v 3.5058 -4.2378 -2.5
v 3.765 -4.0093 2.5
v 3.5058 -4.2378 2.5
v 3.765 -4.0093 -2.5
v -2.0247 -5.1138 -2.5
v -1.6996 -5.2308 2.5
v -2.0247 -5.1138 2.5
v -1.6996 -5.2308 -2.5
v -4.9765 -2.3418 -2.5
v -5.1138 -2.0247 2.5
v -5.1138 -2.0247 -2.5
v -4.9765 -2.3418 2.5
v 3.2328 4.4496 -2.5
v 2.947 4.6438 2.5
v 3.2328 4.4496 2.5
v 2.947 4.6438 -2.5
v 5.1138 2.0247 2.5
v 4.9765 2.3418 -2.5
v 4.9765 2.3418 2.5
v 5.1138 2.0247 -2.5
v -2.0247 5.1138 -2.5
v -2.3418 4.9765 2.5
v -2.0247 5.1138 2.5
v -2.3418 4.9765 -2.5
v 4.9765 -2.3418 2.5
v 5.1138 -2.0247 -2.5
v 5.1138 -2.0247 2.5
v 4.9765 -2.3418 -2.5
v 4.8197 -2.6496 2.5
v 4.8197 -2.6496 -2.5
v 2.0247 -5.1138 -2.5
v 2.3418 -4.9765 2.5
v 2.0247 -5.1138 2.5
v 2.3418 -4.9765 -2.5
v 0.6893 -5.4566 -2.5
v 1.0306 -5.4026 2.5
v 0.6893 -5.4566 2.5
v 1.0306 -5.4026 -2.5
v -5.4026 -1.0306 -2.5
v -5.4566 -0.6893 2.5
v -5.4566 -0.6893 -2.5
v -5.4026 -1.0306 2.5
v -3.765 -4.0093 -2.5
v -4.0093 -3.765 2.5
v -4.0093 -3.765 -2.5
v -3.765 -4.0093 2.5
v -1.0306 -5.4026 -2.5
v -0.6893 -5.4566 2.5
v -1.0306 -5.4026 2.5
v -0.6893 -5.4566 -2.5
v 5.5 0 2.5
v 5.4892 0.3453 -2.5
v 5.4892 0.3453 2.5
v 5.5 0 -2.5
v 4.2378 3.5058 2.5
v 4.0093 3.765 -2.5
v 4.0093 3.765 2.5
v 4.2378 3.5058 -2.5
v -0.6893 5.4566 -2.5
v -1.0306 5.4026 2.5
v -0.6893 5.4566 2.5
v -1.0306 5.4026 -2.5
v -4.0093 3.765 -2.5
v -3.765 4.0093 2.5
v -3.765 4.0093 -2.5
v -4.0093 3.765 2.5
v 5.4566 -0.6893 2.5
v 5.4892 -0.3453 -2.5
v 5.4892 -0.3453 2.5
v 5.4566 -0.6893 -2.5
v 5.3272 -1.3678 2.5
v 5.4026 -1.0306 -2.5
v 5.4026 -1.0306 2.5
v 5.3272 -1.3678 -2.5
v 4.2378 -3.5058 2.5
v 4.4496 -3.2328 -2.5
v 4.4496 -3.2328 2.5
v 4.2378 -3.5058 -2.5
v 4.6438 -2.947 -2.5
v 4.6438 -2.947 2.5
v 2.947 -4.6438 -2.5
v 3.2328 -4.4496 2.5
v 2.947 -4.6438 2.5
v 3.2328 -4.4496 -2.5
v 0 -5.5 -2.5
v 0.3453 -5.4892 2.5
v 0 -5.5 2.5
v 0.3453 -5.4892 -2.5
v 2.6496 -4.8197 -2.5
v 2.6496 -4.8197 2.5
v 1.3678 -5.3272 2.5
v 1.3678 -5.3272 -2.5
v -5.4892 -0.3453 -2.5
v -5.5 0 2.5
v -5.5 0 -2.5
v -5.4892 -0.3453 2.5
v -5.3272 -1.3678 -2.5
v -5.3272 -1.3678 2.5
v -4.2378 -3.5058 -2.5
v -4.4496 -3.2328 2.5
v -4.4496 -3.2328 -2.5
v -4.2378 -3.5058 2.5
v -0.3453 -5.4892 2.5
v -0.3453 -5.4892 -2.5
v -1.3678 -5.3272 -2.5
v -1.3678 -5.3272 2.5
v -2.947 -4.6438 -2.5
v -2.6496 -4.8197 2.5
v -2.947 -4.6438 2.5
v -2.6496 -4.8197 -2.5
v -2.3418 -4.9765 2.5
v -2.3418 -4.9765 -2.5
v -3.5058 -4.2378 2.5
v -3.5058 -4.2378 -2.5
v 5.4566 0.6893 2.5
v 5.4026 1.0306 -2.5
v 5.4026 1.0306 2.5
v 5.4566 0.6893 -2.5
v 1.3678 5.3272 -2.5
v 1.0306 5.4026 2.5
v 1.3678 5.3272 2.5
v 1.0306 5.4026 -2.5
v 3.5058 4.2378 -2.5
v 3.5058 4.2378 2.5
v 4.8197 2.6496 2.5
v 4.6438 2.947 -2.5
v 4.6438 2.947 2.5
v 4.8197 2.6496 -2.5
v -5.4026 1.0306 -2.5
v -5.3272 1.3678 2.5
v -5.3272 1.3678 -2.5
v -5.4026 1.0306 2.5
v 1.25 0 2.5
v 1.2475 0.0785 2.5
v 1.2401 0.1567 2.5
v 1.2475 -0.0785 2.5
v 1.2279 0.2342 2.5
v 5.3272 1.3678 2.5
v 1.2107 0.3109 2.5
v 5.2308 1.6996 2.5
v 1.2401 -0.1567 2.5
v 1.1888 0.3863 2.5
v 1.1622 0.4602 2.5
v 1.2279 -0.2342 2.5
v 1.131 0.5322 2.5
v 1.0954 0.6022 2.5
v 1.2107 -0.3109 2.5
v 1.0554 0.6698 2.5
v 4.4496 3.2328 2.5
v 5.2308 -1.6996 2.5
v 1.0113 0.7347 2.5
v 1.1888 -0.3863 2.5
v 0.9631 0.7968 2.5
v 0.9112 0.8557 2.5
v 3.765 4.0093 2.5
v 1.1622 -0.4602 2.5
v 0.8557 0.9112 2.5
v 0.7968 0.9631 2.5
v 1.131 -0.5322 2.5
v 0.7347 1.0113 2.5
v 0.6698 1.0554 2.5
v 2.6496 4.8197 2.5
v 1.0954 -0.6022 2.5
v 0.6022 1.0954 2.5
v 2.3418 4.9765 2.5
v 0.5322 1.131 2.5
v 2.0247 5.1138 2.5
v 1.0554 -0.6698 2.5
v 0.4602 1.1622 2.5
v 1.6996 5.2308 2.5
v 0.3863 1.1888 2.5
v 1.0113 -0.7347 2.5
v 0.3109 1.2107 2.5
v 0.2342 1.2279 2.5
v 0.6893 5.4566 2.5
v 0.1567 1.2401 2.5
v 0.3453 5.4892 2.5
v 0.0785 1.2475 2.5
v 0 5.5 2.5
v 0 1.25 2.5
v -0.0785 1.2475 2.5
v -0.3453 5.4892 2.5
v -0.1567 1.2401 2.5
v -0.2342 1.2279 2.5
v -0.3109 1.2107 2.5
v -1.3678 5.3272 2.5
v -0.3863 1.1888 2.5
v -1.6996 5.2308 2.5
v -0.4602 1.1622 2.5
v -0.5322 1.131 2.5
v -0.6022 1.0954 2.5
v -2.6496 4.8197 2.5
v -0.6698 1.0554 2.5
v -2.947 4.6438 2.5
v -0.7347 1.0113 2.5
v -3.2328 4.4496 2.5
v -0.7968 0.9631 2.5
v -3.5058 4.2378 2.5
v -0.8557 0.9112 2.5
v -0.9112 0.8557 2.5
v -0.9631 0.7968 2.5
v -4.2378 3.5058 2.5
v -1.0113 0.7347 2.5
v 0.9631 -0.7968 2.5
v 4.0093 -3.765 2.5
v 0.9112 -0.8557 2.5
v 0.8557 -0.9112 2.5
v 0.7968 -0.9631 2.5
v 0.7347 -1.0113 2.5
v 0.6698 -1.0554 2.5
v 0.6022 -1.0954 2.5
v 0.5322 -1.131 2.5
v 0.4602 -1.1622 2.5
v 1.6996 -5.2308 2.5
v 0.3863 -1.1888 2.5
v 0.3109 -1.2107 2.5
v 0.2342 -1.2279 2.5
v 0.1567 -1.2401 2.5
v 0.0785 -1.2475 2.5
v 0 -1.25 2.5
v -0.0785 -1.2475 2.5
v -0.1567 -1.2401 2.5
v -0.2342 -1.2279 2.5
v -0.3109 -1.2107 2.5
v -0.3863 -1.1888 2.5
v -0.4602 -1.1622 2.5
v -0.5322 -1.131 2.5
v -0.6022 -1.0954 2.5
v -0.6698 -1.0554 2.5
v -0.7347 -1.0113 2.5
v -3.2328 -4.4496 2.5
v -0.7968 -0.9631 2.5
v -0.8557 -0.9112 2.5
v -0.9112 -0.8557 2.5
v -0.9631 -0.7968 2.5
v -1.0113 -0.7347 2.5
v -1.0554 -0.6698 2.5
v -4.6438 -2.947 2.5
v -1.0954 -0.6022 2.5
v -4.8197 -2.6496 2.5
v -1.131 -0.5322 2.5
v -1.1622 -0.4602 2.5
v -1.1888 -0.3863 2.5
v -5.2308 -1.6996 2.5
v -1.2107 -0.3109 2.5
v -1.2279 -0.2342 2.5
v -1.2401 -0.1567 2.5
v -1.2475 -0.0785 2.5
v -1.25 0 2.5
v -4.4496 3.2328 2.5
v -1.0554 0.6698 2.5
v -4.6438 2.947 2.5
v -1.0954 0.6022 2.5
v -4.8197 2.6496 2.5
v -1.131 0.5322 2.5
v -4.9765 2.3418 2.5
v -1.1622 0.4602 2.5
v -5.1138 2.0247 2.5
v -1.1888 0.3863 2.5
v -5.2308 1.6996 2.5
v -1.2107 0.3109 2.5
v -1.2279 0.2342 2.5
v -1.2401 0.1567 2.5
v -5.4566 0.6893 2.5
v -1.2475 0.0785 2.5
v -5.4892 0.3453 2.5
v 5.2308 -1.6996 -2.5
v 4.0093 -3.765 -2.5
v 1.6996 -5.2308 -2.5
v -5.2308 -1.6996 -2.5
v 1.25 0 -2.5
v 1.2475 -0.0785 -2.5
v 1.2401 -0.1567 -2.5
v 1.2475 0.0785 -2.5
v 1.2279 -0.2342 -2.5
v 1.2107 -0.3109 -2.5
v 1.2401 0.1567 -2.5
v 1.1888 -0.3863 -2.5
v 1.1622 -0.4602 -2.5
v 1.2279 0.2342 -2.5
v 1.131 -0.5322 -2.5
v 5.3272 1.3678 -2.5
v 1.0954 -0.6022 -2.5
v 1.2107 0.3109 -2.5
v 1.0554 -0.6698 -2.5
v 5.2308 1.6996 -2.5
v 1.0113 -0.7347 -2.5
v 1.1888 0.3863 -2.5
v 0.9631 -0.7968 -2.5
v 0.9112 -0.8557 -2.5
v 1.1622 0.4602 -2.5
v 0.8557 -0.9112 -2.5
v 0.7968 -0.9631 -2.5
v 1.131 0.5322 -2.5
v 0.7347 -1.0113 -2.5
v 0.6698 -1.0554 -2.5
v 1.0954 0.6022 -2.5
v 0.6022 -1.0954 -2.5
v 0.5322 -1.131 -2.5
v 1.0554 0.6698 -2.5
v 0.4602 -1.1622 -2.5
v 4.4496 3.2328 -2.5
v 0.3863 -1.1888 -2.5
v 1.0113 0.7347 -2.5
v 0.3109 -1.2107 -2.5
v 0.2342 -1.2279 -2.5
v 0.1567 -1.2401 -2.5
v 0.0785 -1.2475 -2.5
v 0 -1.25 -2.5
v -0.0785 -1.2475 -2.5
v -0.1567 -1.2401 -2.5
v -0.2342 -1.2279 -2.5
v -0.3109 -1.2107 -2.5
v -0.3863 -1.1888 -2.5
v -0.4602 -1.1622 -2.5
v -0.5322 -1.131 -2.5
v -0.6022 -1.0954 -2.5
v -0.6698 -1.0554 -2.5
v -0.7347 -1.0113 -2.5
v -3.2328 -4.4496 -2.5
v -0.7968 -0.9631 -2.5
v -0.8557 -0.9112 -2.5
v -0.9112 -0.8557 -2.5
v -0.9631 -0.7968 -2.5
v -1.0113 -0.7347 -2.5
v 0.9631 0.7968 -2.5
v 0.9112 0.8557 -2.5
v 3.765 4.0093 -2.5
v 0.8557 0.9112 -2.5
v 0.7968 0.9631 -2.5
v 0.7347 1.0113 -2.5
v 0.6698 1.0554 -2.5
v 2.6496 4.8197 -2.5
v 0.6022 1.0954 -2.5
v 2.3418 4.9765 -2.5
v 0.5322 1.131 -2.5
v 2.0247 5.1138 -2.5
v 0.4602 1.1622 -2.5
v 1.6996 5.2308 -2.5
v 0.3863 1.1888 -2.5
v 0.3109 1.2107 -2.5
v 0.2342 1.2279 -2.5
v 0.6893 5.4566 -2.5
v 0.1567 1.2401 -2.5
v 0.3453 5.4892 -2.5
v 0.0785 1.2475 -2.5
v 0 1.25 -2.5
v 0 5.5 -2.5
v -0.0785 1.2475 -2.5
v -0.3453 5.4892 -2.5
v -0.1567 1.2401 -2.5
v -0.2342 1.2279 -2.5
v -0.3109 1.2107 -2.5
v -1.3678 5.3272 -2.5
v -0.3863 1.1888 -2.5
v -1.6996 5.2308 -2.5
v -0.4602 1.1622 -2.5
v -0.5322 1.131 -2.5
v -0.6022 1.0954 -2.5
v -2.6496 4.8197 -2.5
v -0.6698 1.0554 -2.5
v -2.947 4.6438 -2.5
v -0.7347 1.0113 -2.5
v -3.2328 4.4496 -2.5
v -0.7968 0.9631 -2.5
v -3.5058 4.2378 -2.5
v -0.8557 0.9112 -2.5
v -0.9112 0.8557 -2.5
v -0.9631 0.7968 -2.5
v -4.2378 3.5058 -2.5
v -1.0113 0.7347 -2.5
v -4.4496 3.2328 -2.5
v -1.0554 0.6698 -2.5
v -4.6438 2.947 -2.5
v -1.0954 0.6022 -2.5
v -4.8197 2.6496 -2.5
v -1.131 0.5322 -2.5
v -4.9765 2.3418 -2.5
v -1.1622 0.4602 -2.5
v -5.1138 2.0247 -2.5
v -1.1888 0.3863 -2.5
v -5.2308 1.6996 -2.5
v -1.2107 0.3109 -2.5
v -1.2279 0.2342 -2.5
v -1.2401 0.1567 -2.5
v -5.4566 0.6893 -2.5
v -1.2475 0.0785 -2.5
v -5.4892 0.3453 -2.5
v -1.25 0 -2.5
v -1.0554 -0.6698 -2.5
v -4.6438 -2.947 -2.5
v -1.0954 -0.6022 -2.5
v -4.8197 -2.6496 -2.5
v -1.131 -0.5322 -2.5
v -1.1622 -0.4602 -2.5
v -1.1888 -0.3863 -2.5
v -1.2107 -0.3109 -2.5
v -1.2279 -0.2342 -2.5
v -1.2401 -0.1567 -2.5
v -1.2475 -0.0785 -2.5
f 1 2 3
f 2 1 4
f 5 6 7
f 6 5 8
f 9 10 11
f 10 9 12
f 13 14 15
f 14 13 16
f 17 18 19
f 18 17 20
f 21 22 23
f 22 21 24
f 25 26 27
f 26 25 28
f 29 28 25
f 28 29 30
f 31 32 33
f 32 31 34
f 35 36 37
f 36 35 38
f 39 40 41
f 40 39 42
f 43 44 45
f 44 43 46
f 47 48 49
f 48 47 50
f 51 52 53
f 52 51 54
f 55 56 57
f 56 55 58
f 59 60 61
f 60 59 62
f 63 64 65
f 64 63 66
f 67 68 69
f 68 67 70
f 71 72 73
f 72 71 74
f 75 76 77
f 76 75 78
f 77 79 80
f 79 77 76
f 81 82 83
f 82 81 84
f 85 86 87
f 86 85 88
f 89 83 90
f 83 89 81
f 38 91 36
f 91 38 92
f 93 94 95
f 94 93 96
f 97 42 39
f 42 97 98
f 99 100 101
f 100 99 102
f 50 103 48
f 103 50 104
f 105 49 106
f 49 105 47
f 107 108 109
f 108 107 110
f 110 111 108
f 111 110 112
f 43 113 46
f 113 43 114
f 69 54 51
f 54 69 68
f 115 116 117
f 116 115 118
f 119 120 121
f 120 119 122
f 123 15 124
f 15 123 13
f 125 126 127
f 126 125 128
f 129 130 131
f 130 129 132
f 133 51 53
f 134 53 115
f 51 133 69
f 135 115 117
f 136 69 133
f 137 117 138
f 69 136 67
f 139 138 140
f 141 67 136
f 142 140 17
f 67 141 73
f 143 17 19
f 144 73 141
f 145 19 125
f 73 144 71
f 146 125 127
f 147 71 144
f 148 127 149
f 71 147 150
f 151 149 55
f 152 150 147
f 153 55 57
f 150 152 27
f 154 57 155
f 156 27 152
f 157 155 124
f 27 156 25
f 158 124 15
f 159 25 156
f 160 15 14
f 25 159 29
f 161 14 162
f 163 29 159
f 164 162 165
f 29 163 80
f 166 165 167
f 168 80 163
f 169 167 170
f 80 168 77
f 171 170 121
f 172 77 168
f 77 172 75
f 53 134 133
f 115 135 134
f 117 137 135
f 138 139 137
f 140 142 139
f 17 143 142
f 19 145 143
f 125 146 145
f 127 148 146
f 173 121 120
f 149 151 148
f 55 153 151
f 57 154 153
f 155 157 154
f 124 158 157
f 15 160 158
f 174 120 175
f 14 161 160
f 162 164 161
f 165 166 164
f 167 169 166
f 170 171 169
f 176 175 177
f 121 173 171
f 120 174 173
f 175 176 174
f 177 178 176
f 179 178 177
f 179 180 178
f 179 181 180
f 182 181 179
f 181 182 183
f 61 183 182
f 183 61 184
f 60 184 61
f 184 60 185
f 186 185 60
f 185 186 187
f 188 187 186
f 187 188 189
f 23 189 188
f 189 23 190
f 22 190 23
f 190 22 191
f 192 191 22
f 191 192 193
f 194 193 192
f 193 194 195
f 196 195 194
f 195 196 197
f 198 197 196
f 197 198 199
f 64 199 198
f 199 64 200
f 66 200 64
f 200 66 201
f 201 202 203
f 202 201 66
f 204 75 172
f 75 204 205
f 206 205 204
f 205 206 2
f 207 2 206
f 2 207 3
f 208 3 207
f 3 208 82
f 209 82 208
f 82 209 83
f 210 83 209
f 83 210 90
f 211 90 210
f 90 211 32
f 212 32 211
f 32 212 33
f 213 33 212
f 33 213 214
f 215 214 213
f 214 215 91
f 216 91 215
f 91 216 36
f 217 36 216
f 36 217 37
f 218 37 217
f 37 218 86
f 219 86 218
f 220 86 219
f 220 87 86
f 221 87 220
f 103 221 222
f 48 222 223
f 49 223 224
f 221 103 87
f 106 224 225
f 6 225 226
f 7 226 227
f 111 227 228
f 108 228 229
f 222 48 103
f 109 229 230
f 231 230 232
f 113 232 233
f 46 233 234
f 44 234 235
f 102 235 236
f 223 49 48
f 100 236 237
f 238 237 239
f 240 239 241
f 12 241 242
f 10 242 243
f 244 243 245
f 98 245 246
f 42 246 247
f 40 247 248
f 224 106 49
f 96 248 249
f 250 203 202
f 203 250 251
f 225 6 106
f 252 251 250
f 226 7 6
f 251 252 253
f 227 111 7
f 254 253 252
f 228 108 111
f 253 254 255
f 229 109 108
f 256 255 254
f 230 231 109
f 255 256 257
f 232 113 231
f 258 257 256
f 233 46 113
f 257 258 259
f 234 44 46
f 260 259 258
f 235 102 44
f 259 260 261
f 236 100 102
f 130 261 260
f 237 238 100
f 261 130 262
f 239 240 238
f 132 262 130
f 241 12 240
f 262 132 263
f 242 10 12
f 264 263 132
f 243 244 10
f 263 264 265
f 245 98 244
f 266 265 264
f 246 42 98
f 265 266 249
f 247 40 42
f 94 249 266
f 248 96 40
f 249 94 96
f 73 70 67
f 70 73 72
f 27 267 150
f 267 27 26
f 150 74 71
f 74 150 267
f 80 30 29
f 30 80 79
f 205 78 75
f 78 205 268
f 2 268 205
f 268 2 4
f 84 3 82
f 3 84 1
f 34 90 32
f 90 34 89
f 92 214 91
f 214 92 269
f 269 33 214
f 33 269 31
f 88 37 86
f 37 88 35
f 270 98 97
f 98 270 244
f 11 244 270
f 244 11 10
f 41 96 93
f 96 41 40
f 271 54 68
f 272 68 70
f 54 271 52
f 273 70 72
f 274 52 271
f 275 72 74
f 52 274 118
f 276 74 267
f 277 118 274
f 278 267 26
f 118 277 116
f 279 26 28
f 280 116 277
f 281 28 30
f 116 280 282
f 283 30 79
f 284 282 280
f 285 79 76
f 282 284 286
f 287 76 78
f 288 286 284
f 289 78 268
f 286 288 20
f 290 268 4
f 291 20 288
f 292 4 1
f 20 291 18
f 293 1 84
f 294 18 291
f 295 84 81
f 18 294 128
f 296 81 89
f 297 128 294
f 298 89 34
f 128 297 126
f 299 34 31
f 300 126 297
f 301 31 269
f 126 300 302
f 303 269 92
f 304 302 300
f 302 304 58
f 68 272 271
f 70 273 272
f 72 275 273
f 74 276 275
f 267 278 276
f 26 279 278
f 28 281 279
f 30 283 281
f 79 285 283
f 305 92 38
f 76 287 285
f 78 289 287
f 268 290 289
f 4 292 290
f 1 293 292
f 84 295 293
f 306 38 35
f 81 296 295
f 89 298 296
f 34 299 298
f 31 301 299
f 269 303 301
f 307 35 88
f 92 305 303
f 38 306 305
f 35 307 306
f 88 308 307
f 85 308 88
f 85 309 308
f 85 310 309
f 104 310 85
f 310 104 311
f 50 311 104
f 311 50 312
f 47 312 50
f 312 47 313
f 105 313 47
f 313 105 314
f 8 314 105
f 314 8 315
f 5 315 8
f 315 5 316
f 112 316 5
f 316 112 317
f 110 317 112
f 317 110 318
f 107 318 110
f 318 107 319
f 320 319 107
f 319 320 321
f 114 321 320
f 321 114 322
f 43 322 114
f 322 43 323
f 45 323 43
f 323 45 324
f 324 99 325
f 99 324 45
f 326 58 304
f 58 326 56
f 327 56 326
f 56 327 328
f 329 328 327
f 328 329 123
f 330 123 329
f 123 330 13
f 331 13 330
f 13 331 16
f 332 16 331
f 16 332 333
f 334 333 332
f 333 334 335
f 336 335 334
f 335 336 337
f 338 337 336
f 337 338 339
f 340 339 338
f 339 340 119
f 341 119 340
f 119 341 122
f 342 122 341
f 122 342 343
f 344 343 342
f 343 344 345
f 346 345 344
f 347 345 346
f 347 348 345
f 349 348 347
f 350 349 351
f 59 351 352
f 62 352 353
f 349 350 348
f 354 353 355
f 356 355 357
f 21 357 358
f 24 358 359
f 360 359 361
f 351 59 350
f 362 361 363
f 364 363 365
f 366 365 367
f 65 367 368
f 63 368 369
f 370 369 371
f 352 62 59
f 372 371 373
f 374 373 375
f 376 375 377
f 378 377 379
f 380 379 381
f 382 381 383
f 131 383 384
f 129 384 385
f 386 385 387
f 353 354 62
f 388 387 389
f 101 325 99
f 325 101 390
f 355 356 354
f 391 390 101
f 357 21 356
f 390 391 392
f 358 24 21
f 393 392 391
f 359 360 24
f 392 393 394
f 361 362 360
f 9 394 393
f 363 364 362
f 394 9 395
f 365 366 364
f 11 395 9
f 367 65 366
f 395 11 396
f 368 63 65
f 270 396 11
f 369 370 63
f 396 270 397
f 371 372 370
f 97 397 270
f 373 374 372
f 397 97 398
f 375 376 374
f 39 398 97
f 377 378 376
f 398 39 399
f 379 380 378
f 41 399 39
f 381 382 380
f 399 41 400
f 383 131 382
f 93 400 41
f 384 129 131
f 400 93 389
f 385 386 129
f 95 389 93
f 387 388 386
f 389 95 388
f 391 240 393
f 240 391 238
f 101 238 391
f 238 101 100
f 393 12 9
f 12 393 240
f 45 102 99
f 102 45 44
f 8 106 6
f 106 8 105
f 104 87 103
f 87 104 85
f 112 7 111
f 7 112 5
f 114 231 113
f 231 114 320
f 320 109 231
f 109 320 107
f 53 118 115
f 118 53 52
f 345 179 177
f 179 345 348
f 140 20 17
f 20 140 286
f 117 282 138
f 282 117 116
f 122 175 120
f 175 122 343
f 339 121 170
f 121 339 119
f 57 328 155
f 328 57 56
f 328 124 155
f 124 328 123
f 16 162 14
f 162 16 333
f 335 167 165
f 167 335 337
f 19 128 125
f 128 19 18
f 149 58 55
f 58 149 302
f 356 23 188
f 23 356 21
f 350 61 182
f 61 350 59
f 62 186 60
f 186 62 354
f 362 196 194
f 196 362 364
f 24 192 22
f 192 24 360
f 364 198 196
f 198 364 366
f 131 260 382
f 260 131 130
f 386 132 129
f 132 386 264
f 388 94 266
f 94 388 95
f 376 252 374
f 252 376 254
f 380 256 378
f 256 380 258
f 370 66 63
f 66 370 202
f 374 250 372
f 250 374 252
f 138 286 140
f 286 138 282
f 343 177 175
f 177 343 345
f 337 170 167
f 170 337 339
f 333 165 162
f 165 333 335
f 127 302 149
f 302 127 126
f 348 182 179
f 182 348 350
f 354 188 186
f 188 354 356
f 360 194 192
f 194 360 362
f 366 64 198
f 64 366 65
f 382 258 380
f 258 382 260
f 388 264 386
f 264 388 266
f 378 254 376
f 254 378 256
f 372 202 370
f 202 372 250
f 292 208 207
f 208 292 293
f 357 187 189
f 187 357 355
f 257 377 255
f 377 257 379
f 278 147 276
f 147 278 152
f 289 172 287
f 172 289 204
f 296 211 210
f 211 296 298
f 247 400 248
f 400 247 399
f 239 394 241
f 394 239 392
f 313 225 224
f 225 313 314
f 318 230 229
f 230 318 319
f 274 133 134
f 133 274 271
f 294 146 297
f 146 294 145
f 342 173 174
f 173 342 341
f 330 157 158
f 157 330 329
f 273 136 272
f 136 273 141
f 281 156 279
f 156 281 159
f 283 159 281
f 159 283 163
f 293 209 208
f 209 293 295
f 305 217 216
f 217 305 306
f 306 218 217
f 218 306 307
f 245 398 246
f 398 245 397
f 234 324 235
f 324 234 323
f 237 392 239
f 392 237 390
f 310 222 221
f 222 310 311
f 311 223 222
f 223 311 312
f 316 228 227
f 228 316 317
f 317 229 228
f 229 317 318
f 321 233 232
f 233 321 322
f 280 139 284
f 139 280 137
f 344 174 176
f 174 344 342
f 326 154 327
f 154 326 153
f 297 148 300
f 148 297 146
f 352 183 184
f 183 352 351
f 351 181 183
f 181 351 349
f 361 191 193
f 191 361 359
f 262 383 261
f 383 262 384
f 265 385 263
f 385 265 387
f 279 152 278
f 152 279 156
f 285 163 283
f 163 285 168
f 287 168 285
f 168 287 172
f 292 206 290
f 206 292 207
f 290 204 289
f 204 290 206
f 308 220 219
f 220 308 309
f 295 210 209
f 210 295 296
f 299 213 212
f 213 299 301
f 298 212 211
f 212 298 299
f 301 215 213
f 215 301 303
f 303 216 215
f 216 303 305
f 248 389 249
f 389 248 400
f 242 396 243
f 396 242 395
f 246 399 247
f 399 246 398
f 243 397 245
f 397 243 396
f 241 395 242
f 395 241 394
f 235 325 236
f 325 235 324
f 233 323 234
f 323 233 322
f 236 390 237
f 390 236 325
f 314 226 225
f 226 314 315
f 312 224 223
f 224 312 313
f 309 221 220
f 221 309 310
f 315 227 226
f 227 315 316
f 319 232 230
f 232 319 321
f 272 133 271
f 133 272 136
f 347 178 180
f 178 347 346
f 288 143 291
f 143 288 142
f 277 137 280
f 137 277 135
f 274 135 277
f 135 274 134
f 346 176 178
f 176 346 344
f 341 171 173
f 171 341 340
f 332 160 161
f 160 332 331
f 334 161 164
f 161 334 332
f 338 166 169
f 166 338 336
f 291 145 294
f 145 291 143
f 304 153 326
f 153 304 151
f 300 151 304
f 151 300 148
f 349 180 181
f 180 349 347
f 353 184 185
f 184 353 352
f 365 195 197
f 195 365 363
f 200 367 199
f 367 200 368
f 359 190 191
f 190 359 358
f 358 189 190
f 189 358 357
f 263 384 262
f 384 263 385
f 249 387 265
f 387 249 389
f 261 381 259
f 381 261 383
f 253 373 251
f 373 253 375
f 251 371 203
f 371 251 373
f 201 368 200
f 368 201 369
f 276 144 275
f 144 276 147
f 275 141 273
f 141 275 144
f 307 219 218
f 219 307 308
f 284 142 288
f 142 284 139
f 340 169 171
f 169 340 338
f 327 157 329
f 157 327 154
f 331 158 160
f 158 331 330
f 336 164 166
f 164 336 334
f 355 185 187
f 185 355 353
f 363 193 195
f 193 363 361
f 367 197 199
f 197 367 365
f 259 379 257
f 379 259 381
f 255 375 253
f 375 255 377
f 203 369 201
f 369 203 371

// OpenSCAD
// file: ../openscad-extra/openscad-extra/countersink.scad
/*
Countersink depression for screw heads.
*/
include <../settings.scad>;
use <../openscad-extra/countersink.scad>;

/*
module make_countersink(d1=0, d2=0, h=0, l=0, outer=100, inner=200, bt_extra=0, $fn=25){
    extra = 0.5;
    d1 = d1 ? d1 : screw_thread_diameter;
    d2 = d2 ? d2 : screw_head_diameter;
    h = h ? h : screw_head_height;
    
    union(){
        cylinder(d1=d1, d2=d2, h=h+extra, center=true, $fn=$fn);
        
        if(l)
        cylinder(d=d1, h=l, center=true, $fn=$fn);
    
        // big top
    	translate([0,0,(h+extra)/2])
    	cylinder(d=d2+bt_extra, h=outer, center=false, $fn=$fn);

    	// lower bottom
    	translate([0,0,-(h+extra)/2-inner])
    	cylinder(d=d1, h=inner, center=false, $fn=$fn);
	}
}
*/

module make_countersink_motor(){
    make_countersink(
        d1=motor_mount_holes_width,
        d2=motor_mount_holes_head_width,
        h=motor_mount_holes_head_height);
}

make_countersink();
// file: ../openscad-extra/settings.scad
// Common settings used by all scad files.

// ALL UNITS IN MILLIMETERS (MM)!!!

$fn = 30;//low-res but fast to render
//$fn = 50;//higher-res but slow to render

pi = 3.1415926535897932384626433832795;

max_footprint = 150; // 15x15 cm

bottom_clearance = 10;
bottom_clearance = 25.4/2+10;
//bottom_clearance = 30;

shell_alpha = 0.215;
//shell_alpha = 1.0;

tolerance = 0.5;

// Flat countersunk M2.5mm x 0.45mm machine screw.
screw_thread_diameter = 2.5;//2.8;//2.75;//2.4?
screw_thread_length = 5;//?
screw_head_diameter = 4.75; // M2.5
//screw_head_diameter = 5.2; // M3
screw_head_height = 1.5;//2;

screw_thread_diameter2 = 2;

unit_thickness = 5;
u = unit_thickness;

shell_thickness = unit_thickness;

// Show flags.
show_platform = 1;
show_head = 1;
show_head_shell = 0;
show_head_electronics_bb = 0;
show_inner_head = 0;
show_battery = 1;
show_foot_cube = 0;
show_torso = 0;
show_motor = 0;
show_motor_wheeled_layout = 1;
show_motor_treads = 0;
show_motor_plates = 1;
show_motor_inner_plates = 1;
show_motor_outer_plates = 1;
show_wheel = 0;//obsolete
show_tracks = 1;//
show_track_wheels = 1;
show_caster = 0;
show_rpi = 1;
show_vertical_plates = 1;//
show_horizontal_plates = 1;//
show_caster_plates = 0;//obsolete?
show_camera = 1;
show_screen = 0;
show_edge_mount = 1;
show_sonar_mount = 1;
show_recharge_mount = 1;
show_conduit = 1;
show_torso_shell = 0;
show_recharge_dock = 0;
show_head_tilt_axis = 0;
show_rpi_camera_axis = 0;
show_laser_axis = 0;

head_vertical_angle_tilt = 0;
//head_vertical_angle_tilt = 30;//max
//head_vertical_angle_tilt = 10;

torso_height = 120+20;

base_plate_diameter = max_footprint-unit_thickness*2;
base_plate_frame = 0;

head_height = 50;
head_offset_z = max_footprint/2;
head_middle_cutout = 85;

rpi_with_four_hats_and_clearance = 76;

motor_gear_teeth = 26;

qrd1114_w = 6.10;
qrd1114_l = 4.39;
qrd1114_h = 4.65;

dock_radius = 10;
dock_gripper_border = 2;
dock_gripper_instep = 0.9;
dock_gripper_cutout_tapper = 50;
dock_receiver_height = 5;

// Patriod Fuel+ 9000 mAh
battery_length = 90;
battery_width = 57;
battery_height = 23;
battery_offset_z = 30;//4;

wheel_diameter = 50;
wheel_offset_x = 65;
wheel_offset_z = wheel_diameter/2;
wheel_axle_diameter = 5;

//caster_diameter = 19.05; // 0.75 inches
caster_diameter = 25.45; // 1 inches
//caster_diameter = 15.875; // 5/8 inches
caster_holder_diameter = 30;//31;
caster_offset_y = base_plate_diameter/2 - caster_holder_diameter/2;

arduino_offset_x = 0;
arduino_offset_y = 0;
arduino_offset_z = 67;
arduino_offset_x2 = 0;
arduino_offset_y2 = -20;
arduino_offset_z2 = torso_height+bottom_clearance;

horizontal_plate_width = unit_thickness*8*2 - unit_thickness*2;
horizontal_plate_depth = unit_thickness*8*2;

vertical_plate_width = horizontal_plate_depth;
vertical_plate_height = unit_thickness*8;
vertical_plate_offset_x = wheel_offset_x-22.5;
vertical_plate_offset_z = vertical_plate_height/2 + unit_thickness/2;

vertical_battery_plate_height = 100 - 15;

caster_plate_width = horizontal_plate_width + unit_thickness*2;
caster_plate_mount_length = unit_thickness*4;
caster_plate_width_minor = caster_holder_diameter;

motor_switch_length = 20;
motor_switch_thickness = 6.5;
motor_switch_height = 11;
motor_switch_height_leads = 23;
motor_switch_on_height =  13.3;
motor_switch_hole_diameter = 2.5;
motor_switch_hole_offset_z = 6.5;//this plus diameter/2 is hole center from switch top
motor_switch_hole_spacing = 7.1;// holes are diameter/2 from this

motor_length = 60;
motor_width = 25;
motor_collar_width = 7;
motor_collar_height = 2.5;
motor_axle_width = 4;
motor_axle_height = 9.5;
motor_offset_x = 10;
//motor_offset_y = motor_width/2+5;
motor_offset_y = unit_thickness*3.5;
motor_offset_z = vertical_plate_height/2 - unit_thickness/2;//4;//30;
motor_mount_holes_dist = 17;
// motor countersink hole
motor_mount_holes_width = 3; // M3
motor_mount_holes_head_height = 2.2;
motor_mount_holes_head_width = 5.8;
motor_bearing_outer_diameter = 10;
motor_bearing_inner_diameter = 5.95;
motor_bearing_thickness = 2.5;

motor_unimount_idler_axle_d = screw_thread_diameter;
//motor_unimount_spacer_depth = 0.1;//too small
motor_unimount_spacer_depth = 0.5;

motor_arm_offset_y = -u*3;
motor_arm_offset_z = u*.5;

motor_plate_width = vertical_plate_width;
motor_plate_height = vertical_plate_height;
motor_plate_thickness = unit_thickness;
motor_plate_offset_z = vertical_plate_offset_z;

motor_plate_middle_thickness = 5;

wheel_hub_offset = u*3;

motor_hole_height_offset = -5;

nylon_spacer_outer_diameter = 6.35;
nylon_spacer_inner_diameter = 3.302;
nylon_spacer_length = 12.7;

track_width = unit_thickness*3;
track_offset_x = -50;
track_offset_z = .1;
//track_wheel_radius = 19;//original
track_wheel_radius = 14;
//track_wheel_hole_radius = (nylon_spacer_outer_diameter+1)/2;
track_wheel_hole_radius = motor_bearing_outer_diameter/2;

track_driver_hole_radius = (motor_axle_width)/2 + 0.1;
track_driver_set_screw_head_d = 4.1;
track_driver_set_screw_shaft_d = 2.4;
//track_wheel_width = 13.5;//original
track_wheel_width = u*2;
track_wheel_width_buffer = u*0.25;
track_offset = 3;        //distance from chassis
track_wheel_offset = track_offset;
//track_length = 250; // see tread_triangle.py, too big
//track_length = 240; // see tread_triangle.py
//track_length = 238; //inc/dec in 10 unit increments so notches match idlers
track_length = 228; //inc/dec in 10 unit increments so notches match idlers
track_radius = track_length/2/pi;
track_wheel_show_fancy = 1;
track_wheel_gap = track_wheel_width + track_wheel_width_buffer*2;
track_axle_bearing_diameter = motor_bearing_inner_diameter - 0.1;
track_tensioner_radius = 12;
track_nut_height = 3.5; //TODO
track_punchout_thickness = 0.25;//should be the same as the minimum layer thickness

head_slew_bearing_outer_diameter = 115;
head_slew_bearing_ring_thickness = 20;
head_slew_bearing_inner_diameter = head_slew_bearing_outer_diameter - head_slew_bearing_ring_thickness;
//head_slew_bearing_hole_diameter = head_slew_bearing_inner_diameter - head_slew_bearing_ring_thickness;
head_slew_bearing_hole_diameter = 12+tolerance; // slip ring https://www.adafruit.com/products/775
//head_slew_bearing_ball_diameter = 5;
head_slew_bearing_ball_diameter = 2.5; //u/2;
head_slew_bearing_height = u;//head_slew_bearing_ball_diameter*2;
head_slew_bearing_gap = 0.5;
head_slew_bearing_slew_gap = 0;
head_slew_bearing_gap_factor = 0.1;

neck_strut_width = u*7;
neck_strut_height = u*18;
neck_strut_spacing = u*8;

show_outer_race = 0;
show_inner_race_a = 1;
show_inner_race_b = 1;
show_balls = 0;
// file: ../openscad-extra/src/countersink.scad
/*
Countersink depression for screw heads.
*/
include <../settings.scad>;
use <../openscad-extra/countersink.scad>;

/*
module make_countersink(d1=0, d2=0, h=0, l=0, outer=100, inner=200, bt_extra=0, $fn=25){
    extra = 0.5;
    d1 = d1 ? d1 : screw_thread_diameter;
    d2 = d2 ? d2 : screw_head_diameter;
    h = h ? h : screw_head_height;
    
    union(){
        cylinder(d1=d1, d2=d2, h=h+extra, center=true, $fn=$fn);
        
        if(l)
        cylinder(d=d1, h=l, center=true, $fn=$fn);
    
        // big top
    	translate([0,0,(h+extra)/2])
    	cylinder(d=d2+bt_extra, h=outer, center=false, $fn=$fn);

    	// lower bottom
    	translate([0,0,-(h+extra)/2-inner])
    	cylinder(d=d1, h=inner, center=false, $fn=$fn);
	}
}
*/

module make_countersink_motor(){
    make_countersink(
        d1=motor_mount_holes_width,
        d2=motor_mount_holes_head_width,
        h=motor_mount_holes_head_height);
}

make_countersink();
// file: caster_housing_top.scad
use <../openscad-extra/src/countersink.scad>;

module make_caster_screw_holes(){
    for(i=[-1:2:1])
    translate([15,10*i,2.6])
    make_countersink(d1=2.5, d2=5);
}

module make_caster_housing_top(){
    difference(){
        color("orange")
        cube([35,30,5], center=true);
        
        // cutout for round top
        color("blue")
        translate([-2.5,0,0])
        cylinder(d=22.5, h=30, center=true, $fn=100);
        
        // cutout for round bottom
        color("blue")
        translate([-2.5,0,-3.75])
        cylinder(d=26, h=10, center=true, $fn=100);
        
        // cutout for bottom slide
        translate([30,0,-.01])
        rotate([-90,0,90])
        color("red")
        linear_extrude(50)
        polygon([[0,0],[13,0],[13-1,2.5],[-13+1,2.5],[-13,0]]);
    
        make_caster_screw_holes();
    }
}

module make_caster_housing_bottom(){
    difference(){
        translate([35/2,0,-.01])
        rotate([-90,0,90])
        color("red")
        linear_extrude(35)
        polygon([[0,0],[13-0.25,0],[13-1-0.25,2.5],[-13+1+0.25,2.5],[-13+0.25,0]]);
        
        // cutout for thrust bearing 12mm diameter and 2mm height
        cube([40,12,1.5], center=true);
        
        // cutout for center thrust bearing
        color("purple")
        translate([-2.5,0,0])
        cylinder(d=12, h=2, center=true, $fn=100);
        
        make_caster_screw_holes();
    }
}

module make_caster_housing_center(){
    difference(){
        union(){
            // cutout for round top
            color("purple")
            translate([-2.5,0,1.6])
            cylinder(d=22.5-1, h=2, center=true, $fn=100);
            
            // cutout for round bottom
            color("purple")
            translate([-2.5,0,0.25])
            cylinder(d=26-1, h=0.75, center=true, $fn=100);
        }
            
        // cutout for center thrust bearing
        color("purple")
        translate([-2.5,0,0])
        cylinder(d=12, h=1.9, center=true, $fn=100);
    }
    difference(){
        intersection(){
            translate([2,0,0])
            scale([1.25,1,1.1])
            sphere(d=25, $fn=100);
                
            color("purple")
            translate([-2.5,0,52])
            cylinder(d=22.5-1, h=100, center=true, $fn=100);
        }
        
        // wheel well
        translate([6,0,12.5])
        cube([20,7,20], center=true);
        
        // axle hole
        color("red")
        translate([4,0,10])
        rotate([90,0,0])
        cylinder(d=2, h=50, center=true, $fn=100);
    }
    
}

module make_caster_wheel(d=11){
    rotate([90,0,0]){
        difference(){
            cylinder(d=d, h=5, center=true, $fn=100);
            cylinder(d=2.5, h=20, center=true, $fn=100);
        }
        //color("blue")
        //cylinder(d=1, h=100, center=true, $fn=100);
    }
}

rotate([180,0,0])
make_caster_housing_top();
// main file
use <caster_housing_top.scad>;

rotate([90,0,0])
make_caster_wheel(d=11);
